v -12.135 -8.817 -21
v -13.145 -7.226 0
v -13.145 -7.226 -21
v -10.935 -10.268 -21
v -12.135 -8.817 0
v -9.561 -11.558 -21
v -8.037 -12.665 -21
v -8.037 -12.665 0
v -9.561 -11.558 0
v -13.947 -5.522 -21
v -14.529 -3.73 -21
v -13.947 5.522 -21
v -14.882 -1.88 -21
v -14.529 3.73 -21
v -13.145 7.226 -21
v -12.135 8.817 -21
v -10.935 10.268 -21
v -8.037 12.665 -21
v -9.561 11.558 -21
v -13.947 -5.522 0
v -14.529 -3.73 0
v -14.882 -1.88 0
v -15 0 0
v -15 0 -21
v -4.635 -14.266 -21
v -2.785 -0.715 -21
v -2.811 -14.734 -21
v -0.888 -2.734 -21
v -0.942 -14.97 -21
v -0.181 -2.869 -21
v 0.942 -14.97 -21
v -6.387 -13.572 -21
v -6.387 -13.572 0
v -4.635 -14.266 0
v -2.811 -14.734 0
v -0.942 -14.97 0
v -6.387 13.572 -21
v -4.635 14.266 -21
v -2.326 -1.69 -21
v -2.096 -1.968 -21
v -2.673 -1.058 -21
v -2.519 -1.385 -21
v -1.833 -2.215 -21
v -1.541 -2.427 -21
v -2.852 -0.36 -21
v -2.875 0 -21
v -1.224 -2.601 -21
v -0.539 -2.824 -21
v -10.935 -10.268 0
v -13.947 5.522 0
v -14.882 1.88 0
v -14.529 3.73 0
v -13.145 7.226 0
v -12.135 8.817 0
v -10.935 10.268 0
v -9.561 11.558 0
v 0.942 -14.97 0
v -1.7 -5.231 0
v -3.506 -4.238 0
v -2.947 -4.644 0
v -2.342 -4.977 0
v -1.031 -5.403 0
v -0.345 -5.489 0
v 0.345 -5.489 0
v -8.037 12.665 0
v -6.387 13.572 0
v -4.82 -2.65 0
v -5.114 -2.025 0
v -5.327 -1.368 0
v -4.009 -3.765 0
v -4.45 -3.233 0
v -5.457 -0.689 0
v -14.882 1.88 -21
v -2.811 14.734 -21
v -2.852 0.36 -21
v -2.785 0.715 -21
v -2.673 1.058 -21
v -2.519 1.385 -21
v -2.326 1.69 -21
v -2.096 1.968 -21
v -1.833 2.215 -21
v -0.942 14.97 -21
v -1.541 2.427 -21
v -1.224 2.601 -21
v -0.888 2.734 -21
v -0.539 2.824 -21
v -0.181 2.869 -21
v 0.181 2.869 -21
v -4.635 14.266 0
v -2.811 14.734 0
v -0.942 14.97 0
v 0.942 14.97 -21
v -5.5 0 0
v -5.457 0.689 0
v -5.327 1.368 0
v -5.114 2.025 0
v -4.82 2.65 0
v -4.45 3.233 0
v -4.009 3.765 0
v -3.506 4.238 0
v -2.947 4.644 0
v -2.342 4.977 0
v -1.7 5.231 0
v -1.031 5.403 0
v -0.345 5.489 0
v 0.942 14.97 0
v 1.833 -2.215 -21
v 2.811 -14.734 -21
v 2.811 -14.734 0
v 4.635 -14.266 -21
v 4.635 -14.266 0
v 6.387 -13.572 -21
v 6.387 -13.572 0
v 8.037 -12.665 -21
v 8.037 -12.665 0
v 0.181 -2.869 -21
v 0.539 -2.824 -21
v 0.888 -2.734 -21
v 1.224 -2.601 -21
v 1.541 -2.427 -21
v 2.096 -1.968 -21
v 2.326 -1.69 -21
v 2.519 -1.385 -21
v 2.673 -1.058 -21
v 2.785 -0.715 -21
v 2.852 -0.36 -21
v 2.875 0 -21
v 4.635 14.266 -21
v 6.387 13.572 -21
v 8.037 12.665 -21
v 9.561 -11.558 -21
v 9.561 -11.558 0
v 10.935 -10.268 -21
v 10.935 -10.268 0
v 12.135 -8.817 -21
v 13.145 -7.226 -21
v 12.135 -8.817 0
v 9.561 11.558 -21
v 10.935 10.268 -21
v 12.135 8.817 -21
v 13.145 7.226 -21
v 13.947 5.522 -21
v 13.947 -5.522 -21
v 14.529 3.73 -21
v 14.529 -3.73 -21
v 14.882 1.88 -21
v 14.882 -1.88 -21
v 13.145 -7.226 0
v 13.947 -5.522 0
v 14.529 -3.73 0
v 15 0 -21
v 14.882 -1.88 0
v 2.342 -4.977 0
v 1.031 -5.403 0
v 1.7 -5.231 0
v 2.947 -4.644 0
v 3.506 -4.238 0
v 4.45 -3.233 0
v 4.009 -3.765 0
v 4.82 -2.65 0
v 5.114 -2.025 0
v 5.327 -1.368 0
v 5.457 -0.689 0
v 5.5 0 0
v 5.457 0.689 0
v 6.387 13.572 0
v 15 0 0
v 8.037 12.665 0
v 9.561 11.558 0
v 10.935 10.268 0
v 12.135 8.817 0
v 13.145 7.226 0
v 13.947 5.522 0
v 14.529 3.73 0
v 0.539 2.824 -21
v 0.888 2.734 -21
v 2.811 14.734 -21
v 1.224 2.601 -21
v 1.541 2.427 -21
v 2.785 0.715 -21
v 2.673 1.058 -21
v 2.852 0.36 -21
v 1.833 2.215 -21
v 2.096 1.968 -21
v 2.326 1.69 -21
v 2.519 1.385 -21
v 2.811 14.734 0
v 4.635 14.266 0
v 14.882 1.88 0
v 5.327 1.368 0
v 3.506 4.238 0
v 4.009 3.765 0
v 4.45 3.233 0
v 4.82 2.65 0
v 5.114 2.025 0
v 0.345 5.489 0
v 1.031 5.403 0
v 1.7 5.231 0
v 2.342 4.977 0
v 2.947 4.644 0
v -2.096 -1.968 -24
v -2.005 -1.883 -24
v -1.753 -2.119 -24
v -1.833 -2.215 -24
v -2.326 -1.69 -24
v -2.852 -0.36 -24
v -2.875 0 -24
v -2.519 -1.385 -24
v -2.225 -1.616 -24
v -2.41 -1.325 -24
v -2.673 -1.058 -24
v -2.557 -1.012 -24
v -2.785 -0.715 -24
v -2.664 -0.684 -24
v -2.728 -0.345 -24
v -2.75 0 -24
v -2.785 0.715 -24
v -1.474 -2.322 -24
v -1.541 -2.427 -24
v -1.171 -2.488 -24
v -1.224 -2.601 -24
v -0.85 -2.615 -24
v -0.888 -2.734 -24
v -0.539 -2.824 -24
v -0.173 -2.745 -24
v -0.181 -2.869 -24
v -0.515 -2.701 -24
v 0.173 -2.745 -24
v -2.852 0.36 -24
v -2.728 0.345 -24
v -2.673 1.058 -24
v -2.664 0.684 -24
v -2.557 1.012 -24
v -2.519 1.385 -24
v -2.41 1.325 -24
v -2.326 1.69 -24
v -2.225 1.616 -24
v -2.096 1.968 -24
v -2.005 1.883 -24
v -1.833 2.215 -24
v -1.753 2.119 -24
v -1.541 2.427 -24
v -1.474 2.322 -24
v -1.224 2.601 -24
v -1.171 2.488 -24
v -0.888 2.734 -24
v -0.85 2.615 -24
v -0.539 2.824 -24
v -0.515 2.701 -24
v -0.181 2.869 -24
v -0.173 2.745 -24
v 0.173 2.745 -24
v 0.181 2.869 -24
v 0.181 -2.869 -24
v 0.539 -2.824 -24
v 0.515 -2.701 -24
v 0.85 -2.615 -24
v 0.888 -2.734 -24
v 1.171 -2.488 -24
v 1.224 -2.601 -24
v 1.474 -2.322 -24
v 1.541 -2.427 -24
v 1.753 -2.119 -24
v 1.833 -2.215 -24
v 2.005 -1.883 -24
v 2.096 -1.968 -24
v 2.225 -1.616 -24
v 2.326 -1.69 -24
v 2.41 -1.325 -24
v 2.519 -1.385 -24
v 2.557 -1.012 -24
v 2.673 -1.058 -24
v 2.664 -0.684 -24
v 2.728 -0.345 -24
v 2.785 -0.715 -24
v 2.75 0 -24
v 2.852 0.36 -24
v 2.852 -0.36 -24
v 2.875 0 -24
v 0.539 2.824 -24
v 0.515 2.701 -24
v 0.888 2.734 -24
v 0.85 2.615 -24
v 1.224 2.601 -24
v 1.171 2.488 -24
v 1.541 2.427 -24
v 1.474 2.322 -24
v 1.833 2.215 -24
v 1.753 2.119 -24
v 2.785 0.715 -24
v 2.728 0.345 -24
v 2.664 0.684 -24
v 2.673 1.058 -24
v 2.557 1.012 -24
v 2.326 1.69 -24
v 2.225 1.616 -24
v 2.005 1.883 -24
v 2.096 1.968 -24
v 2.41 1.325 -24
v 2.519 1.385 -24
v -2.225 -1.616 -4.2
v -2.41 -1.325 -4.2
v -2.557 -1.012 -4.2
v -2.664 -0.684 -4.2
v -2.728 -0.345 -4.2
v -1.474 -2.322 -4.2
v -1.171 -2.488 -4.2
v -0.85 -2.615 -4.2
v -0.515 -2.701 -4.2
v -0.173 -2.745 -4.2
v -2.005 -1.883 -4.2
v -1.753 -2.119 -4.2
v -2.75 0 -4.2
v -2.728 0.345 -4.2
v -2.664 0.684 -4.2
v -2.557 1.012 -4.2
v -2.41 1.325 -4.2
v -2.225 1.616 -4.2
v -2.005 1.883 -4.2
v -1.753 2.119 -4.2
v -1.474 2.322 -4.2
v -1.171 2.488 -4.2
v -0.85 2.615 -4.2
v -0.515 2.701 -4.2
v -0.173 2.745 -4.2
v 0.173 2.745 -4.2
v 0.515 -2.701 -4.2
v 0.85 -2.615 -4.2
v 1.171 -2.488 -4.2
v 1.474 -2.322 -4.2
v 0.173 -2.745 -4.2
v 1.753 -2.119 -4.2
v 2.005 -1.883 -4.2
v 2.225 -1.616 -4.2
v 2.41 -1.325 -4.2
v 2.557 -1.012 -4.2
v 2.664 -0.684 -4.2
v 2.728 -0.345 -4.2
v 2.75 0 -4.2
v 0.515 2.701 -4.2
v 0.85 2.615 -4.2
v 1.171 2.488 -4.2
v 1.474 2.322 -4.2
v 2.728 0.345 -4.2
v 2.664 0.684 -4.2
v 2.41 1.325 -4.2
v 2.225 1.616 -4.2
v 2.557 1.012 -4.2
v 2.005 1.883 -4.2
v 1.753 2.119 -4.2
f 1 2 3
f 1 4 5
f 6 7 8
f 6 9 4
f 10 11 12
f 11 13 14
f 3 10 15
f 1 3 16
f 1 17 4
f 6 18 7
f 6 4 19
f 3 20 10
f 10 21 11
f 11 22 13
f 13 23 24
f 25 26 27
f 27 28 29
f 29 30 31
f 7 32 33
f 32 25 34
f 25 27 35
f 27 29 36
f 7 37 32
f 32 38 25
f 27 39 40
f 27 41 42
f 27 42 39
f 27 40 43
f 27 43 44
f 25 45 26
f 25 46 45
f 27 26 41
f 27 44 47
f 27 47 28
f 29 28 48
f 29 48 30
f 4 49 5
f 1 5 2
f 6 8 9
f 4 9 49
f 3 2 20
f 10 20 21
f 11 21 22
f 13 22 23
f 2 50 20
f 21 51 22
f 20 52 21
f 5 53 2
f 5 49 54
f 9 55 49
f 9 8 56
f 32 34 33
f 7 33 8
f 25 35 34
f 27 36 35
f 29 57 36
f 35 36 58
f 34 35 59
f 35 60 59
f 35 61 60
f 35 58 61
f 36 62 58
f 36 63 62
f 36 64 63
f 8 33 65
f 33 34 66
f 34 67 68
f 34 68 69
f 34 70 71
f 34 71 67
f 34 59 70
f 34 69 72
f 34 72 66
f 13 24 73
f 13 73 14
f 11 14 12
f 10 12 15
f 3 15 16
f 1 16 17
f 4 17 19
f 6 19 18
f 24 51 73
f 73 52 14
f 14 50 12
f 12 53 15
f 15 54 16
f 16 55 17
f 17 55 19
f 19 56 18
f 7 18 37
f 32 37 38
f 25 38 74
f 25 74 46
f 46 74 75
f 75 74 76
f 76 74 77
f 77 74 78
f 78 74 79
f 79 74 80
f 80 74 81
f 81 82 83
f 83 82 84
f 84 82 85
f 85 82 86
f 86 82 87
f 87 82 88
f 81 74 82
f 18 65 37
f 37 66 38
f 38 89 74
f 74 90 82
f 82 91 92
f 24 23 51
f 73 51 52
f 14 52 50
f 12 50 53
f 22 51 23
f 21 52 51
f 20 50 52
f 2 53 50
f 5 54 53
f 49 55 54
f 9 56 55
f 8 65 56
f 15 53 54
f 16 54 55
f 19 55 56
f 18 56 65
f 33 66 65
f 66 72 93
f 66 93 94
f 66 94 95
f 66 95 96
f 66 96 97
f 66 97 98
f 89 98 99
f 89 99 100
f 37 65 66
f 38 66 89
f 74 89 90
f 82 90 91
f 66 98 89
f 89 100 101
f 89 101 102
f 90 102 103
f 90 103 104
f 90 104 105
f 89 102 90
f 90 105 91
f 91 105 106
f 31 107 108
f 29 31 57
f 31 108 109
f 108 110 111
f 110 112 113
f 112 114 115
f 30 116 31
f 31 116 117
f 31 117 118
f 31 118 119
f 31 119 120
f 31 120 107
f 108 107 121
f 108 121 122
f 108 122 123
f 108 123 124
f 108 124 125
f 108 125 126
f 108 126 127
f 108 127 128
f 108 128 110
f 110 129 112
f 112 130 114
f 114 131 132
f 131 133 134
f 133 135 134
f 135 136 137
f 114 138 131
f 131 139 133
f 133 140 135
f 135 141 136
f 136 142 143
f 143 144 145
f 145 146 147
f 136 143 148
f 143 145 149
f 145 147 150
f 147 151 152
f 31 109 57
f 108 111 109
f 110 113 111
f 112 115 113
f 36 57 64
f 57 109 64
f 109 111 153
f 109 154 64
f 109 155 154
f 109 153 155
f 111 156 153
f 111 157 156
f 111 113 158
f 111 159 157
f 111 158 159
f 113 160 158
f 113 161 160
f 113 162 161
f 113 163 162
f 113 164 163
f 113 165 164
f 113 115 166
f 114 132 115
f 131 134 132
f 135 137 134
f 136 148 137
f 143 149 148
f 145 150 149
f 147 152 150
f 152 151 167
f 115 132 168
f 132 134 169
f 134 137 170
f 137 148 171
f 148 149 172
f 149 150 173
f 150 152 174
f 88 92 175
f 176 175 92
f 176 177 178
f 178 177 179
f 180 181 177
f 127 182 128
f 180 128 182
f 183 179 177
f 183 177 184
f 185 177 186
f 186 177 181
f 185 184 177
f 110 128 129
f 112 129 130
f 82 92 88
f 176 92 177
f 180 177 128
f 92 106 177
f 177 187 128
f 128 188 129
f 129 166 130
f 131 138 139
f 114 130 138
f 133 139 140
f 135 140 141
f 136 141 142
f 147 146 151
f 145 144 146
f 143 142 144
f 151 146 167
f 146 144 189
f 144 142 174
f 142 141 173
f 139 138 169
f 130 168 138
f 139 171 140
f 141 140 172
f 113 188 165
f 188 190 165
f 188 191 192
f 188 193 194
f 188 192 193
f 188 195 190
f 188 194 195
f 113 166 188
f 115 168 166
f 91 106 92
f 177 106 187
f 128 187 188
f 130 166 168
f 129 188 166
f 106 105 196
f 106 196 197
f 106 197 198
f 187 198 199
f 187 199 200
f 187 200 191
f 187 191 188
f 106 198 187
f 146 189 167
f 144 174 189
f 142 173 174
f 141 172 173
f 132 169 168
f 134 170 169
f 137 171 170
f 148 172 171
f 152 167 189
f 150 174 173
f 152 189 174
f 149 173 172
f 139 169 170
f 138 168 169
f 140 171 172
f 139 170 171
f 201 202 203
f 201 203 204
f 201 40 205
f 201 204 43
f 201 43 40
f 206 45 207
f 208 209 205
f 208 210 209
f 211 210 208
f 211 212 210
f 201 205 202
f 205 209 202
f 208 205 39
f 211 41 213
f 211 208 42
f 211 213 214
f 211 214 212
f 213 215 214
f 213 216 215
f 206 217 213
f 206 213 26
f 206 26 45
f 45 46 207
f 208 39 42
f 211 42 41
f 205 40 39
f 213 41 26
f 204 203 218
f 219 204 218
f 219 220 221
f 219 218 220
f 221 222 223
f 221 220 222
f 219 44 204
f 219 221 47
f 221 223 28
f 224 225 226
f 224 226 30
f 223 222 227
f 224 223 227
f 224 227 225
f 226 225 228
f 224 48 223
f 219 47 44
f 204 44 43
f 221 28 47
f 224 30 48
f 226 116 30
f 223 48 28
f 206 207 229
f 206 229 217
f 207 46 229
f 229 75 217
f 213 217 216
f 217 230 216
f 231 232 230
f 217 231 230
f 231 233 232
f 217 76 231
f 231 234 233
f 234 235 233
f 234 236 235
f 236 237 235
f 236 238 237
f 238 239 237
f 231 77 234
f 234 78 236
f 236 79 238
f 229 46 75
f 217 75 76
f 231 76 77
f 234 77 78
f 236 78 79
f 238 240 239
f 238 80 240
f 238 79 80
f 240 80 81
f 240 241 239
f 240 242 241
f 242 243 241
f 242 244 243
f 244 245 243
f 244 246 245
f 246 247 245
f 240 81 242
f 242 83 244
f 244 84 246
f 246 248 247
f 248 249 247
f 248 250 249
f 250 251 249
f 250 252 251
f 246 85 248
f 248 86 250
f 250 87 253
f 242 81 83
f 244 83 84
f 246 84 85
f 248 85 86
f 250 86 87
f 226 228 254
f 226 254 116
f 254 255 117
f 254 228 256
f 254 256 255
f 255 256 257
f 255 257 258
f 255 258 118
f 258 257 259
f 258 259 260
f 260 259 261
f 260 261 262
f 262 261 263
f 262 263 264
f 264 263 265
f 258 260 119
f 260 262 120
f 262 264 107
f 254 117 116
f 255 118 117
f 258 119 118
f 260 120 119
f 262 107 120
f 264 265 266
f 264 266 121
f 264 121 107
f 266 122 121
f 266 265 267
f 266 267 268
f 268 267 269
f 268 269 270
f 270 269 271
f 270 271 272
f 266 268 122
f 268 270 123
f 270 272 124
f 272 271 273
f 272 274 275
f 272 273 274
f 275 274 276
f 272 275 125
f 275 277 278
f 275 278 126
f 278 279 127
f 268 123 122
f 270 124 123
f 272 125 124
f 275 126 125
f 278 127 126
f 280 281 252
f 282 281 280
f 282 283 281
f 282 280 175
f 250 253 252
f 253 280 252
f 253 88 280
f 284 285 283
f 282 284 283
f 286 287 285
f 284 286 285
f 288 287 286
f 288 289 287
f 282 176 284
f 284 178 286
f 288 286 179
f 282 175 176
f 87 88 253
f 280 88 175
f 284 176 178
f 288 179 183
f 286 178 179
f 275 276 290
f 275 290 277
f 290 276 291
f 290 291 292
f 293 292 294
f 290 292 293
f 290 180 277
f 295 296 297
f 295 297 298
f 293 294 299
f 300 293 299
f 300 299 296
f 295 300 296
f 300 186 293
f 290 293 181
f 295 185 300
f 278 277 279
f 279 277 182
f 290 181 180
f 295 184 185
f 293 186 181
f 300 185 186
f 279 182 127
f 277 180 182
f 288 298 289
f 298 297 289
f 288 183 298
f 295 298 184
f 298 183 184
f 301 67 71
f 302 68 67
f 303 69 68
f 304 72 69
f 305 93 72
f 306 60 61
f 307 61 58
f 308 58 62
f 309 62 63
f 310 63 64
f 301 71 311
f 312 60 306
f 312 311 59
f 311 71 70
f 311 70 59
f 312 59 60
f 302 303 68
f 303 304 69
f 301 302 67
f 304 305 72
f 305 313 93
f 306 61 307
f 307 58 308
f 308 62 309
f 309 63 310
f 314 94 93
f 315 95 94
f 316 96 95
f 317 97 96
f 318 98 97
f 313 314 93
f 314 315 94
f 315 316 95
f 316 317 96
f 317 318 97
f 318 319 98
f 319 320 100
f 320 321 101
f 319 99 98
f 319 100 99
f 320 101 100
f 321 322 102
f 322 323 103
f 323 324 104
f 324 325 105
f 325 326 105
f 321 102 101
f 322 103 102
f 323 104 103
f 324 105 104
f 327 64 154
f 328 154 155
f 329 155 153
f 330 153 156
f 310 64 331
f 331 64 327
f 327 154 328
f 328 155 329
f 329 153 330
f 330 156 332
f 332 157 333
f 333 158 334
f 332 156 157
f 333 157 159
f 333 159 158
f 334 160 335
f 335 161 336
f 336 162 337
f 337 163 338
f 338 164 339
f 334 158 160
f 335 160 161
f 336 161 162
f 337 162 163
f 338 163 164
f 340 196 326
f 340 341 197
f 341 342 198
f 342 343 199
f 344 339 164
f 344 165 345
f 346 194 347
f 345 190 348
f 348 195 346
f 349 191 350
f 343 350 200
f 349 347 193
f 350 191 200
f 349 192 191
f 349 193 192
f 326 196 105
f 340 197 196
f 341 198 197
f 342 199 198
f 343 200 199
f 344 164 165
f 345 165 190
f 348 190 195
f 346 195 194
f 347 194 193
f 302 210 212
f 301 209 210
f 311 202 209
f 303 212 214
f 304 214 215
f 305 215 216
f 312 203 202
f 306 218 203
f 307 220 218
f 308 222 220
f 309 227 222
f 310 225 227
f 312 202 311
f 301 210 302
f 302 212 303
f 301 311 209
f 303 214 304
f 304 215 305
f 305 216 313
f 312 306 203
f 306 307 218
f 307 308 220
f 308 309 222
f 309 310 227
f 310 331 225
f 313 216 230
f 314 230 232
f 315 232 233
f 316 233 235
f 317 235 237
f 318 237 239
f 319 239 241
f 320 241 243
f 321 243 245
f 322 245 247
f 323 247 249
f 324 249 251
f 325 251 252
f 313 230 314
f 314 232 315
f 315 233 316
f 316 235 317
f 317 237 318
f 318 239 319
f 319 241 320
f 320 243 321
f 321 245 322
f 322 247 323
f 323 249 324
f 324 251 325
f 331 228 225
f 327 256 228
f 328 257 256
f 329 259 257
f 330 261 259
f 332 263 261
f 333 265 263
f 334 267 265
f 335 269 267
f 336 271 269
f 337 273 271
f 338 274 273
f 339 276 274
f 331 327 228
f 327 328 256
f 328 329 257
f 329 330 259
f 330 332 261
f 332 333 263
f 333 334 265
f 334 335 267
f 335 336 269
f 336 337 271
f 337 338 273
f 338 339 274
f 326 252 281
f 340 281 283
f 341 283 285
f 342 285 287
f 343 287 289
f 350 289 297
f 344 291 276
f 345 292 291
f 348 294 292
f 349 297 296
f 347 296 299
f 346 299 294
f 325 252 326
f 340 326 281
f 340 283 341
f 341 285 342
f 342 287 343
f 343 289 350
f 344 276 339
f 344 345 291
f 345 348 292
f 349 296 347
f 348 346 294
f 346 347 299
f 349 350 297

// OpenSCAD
$fn = 50;

difference() {
	union() {
		translate(v = [0, 0, -21.0]) {
			cylinder(h = 21, r = 15.0);
		}
		#translate(v = [0, 0, -24.0]) {
			cylinder(h = 24, r = 2.875);
		}
	}
	union() {
		translate(v = [0, 0, 0]) {
			rotate(a = [0, 0, 0]) {
				difference() {
					union() {
						translate(v = [0, 0, -24.0]) {
							cylinder(h = 24, r = 2.25);
						}
						translate(v = [0, 0, -4.2]) {
							cylinder(h = 4.2, r1 = 2.75, r2 = 5.5);
						}
						translate(v = [0, 0, -24.0]) {
							cylinder(h = 24, r = 2.75);
						}
						translate(v = [0, 0, -24.0]) {
							cylinder(h = 24, r = 2.25);
						}
					}
					union();
				}
			}
		}
	}
}
